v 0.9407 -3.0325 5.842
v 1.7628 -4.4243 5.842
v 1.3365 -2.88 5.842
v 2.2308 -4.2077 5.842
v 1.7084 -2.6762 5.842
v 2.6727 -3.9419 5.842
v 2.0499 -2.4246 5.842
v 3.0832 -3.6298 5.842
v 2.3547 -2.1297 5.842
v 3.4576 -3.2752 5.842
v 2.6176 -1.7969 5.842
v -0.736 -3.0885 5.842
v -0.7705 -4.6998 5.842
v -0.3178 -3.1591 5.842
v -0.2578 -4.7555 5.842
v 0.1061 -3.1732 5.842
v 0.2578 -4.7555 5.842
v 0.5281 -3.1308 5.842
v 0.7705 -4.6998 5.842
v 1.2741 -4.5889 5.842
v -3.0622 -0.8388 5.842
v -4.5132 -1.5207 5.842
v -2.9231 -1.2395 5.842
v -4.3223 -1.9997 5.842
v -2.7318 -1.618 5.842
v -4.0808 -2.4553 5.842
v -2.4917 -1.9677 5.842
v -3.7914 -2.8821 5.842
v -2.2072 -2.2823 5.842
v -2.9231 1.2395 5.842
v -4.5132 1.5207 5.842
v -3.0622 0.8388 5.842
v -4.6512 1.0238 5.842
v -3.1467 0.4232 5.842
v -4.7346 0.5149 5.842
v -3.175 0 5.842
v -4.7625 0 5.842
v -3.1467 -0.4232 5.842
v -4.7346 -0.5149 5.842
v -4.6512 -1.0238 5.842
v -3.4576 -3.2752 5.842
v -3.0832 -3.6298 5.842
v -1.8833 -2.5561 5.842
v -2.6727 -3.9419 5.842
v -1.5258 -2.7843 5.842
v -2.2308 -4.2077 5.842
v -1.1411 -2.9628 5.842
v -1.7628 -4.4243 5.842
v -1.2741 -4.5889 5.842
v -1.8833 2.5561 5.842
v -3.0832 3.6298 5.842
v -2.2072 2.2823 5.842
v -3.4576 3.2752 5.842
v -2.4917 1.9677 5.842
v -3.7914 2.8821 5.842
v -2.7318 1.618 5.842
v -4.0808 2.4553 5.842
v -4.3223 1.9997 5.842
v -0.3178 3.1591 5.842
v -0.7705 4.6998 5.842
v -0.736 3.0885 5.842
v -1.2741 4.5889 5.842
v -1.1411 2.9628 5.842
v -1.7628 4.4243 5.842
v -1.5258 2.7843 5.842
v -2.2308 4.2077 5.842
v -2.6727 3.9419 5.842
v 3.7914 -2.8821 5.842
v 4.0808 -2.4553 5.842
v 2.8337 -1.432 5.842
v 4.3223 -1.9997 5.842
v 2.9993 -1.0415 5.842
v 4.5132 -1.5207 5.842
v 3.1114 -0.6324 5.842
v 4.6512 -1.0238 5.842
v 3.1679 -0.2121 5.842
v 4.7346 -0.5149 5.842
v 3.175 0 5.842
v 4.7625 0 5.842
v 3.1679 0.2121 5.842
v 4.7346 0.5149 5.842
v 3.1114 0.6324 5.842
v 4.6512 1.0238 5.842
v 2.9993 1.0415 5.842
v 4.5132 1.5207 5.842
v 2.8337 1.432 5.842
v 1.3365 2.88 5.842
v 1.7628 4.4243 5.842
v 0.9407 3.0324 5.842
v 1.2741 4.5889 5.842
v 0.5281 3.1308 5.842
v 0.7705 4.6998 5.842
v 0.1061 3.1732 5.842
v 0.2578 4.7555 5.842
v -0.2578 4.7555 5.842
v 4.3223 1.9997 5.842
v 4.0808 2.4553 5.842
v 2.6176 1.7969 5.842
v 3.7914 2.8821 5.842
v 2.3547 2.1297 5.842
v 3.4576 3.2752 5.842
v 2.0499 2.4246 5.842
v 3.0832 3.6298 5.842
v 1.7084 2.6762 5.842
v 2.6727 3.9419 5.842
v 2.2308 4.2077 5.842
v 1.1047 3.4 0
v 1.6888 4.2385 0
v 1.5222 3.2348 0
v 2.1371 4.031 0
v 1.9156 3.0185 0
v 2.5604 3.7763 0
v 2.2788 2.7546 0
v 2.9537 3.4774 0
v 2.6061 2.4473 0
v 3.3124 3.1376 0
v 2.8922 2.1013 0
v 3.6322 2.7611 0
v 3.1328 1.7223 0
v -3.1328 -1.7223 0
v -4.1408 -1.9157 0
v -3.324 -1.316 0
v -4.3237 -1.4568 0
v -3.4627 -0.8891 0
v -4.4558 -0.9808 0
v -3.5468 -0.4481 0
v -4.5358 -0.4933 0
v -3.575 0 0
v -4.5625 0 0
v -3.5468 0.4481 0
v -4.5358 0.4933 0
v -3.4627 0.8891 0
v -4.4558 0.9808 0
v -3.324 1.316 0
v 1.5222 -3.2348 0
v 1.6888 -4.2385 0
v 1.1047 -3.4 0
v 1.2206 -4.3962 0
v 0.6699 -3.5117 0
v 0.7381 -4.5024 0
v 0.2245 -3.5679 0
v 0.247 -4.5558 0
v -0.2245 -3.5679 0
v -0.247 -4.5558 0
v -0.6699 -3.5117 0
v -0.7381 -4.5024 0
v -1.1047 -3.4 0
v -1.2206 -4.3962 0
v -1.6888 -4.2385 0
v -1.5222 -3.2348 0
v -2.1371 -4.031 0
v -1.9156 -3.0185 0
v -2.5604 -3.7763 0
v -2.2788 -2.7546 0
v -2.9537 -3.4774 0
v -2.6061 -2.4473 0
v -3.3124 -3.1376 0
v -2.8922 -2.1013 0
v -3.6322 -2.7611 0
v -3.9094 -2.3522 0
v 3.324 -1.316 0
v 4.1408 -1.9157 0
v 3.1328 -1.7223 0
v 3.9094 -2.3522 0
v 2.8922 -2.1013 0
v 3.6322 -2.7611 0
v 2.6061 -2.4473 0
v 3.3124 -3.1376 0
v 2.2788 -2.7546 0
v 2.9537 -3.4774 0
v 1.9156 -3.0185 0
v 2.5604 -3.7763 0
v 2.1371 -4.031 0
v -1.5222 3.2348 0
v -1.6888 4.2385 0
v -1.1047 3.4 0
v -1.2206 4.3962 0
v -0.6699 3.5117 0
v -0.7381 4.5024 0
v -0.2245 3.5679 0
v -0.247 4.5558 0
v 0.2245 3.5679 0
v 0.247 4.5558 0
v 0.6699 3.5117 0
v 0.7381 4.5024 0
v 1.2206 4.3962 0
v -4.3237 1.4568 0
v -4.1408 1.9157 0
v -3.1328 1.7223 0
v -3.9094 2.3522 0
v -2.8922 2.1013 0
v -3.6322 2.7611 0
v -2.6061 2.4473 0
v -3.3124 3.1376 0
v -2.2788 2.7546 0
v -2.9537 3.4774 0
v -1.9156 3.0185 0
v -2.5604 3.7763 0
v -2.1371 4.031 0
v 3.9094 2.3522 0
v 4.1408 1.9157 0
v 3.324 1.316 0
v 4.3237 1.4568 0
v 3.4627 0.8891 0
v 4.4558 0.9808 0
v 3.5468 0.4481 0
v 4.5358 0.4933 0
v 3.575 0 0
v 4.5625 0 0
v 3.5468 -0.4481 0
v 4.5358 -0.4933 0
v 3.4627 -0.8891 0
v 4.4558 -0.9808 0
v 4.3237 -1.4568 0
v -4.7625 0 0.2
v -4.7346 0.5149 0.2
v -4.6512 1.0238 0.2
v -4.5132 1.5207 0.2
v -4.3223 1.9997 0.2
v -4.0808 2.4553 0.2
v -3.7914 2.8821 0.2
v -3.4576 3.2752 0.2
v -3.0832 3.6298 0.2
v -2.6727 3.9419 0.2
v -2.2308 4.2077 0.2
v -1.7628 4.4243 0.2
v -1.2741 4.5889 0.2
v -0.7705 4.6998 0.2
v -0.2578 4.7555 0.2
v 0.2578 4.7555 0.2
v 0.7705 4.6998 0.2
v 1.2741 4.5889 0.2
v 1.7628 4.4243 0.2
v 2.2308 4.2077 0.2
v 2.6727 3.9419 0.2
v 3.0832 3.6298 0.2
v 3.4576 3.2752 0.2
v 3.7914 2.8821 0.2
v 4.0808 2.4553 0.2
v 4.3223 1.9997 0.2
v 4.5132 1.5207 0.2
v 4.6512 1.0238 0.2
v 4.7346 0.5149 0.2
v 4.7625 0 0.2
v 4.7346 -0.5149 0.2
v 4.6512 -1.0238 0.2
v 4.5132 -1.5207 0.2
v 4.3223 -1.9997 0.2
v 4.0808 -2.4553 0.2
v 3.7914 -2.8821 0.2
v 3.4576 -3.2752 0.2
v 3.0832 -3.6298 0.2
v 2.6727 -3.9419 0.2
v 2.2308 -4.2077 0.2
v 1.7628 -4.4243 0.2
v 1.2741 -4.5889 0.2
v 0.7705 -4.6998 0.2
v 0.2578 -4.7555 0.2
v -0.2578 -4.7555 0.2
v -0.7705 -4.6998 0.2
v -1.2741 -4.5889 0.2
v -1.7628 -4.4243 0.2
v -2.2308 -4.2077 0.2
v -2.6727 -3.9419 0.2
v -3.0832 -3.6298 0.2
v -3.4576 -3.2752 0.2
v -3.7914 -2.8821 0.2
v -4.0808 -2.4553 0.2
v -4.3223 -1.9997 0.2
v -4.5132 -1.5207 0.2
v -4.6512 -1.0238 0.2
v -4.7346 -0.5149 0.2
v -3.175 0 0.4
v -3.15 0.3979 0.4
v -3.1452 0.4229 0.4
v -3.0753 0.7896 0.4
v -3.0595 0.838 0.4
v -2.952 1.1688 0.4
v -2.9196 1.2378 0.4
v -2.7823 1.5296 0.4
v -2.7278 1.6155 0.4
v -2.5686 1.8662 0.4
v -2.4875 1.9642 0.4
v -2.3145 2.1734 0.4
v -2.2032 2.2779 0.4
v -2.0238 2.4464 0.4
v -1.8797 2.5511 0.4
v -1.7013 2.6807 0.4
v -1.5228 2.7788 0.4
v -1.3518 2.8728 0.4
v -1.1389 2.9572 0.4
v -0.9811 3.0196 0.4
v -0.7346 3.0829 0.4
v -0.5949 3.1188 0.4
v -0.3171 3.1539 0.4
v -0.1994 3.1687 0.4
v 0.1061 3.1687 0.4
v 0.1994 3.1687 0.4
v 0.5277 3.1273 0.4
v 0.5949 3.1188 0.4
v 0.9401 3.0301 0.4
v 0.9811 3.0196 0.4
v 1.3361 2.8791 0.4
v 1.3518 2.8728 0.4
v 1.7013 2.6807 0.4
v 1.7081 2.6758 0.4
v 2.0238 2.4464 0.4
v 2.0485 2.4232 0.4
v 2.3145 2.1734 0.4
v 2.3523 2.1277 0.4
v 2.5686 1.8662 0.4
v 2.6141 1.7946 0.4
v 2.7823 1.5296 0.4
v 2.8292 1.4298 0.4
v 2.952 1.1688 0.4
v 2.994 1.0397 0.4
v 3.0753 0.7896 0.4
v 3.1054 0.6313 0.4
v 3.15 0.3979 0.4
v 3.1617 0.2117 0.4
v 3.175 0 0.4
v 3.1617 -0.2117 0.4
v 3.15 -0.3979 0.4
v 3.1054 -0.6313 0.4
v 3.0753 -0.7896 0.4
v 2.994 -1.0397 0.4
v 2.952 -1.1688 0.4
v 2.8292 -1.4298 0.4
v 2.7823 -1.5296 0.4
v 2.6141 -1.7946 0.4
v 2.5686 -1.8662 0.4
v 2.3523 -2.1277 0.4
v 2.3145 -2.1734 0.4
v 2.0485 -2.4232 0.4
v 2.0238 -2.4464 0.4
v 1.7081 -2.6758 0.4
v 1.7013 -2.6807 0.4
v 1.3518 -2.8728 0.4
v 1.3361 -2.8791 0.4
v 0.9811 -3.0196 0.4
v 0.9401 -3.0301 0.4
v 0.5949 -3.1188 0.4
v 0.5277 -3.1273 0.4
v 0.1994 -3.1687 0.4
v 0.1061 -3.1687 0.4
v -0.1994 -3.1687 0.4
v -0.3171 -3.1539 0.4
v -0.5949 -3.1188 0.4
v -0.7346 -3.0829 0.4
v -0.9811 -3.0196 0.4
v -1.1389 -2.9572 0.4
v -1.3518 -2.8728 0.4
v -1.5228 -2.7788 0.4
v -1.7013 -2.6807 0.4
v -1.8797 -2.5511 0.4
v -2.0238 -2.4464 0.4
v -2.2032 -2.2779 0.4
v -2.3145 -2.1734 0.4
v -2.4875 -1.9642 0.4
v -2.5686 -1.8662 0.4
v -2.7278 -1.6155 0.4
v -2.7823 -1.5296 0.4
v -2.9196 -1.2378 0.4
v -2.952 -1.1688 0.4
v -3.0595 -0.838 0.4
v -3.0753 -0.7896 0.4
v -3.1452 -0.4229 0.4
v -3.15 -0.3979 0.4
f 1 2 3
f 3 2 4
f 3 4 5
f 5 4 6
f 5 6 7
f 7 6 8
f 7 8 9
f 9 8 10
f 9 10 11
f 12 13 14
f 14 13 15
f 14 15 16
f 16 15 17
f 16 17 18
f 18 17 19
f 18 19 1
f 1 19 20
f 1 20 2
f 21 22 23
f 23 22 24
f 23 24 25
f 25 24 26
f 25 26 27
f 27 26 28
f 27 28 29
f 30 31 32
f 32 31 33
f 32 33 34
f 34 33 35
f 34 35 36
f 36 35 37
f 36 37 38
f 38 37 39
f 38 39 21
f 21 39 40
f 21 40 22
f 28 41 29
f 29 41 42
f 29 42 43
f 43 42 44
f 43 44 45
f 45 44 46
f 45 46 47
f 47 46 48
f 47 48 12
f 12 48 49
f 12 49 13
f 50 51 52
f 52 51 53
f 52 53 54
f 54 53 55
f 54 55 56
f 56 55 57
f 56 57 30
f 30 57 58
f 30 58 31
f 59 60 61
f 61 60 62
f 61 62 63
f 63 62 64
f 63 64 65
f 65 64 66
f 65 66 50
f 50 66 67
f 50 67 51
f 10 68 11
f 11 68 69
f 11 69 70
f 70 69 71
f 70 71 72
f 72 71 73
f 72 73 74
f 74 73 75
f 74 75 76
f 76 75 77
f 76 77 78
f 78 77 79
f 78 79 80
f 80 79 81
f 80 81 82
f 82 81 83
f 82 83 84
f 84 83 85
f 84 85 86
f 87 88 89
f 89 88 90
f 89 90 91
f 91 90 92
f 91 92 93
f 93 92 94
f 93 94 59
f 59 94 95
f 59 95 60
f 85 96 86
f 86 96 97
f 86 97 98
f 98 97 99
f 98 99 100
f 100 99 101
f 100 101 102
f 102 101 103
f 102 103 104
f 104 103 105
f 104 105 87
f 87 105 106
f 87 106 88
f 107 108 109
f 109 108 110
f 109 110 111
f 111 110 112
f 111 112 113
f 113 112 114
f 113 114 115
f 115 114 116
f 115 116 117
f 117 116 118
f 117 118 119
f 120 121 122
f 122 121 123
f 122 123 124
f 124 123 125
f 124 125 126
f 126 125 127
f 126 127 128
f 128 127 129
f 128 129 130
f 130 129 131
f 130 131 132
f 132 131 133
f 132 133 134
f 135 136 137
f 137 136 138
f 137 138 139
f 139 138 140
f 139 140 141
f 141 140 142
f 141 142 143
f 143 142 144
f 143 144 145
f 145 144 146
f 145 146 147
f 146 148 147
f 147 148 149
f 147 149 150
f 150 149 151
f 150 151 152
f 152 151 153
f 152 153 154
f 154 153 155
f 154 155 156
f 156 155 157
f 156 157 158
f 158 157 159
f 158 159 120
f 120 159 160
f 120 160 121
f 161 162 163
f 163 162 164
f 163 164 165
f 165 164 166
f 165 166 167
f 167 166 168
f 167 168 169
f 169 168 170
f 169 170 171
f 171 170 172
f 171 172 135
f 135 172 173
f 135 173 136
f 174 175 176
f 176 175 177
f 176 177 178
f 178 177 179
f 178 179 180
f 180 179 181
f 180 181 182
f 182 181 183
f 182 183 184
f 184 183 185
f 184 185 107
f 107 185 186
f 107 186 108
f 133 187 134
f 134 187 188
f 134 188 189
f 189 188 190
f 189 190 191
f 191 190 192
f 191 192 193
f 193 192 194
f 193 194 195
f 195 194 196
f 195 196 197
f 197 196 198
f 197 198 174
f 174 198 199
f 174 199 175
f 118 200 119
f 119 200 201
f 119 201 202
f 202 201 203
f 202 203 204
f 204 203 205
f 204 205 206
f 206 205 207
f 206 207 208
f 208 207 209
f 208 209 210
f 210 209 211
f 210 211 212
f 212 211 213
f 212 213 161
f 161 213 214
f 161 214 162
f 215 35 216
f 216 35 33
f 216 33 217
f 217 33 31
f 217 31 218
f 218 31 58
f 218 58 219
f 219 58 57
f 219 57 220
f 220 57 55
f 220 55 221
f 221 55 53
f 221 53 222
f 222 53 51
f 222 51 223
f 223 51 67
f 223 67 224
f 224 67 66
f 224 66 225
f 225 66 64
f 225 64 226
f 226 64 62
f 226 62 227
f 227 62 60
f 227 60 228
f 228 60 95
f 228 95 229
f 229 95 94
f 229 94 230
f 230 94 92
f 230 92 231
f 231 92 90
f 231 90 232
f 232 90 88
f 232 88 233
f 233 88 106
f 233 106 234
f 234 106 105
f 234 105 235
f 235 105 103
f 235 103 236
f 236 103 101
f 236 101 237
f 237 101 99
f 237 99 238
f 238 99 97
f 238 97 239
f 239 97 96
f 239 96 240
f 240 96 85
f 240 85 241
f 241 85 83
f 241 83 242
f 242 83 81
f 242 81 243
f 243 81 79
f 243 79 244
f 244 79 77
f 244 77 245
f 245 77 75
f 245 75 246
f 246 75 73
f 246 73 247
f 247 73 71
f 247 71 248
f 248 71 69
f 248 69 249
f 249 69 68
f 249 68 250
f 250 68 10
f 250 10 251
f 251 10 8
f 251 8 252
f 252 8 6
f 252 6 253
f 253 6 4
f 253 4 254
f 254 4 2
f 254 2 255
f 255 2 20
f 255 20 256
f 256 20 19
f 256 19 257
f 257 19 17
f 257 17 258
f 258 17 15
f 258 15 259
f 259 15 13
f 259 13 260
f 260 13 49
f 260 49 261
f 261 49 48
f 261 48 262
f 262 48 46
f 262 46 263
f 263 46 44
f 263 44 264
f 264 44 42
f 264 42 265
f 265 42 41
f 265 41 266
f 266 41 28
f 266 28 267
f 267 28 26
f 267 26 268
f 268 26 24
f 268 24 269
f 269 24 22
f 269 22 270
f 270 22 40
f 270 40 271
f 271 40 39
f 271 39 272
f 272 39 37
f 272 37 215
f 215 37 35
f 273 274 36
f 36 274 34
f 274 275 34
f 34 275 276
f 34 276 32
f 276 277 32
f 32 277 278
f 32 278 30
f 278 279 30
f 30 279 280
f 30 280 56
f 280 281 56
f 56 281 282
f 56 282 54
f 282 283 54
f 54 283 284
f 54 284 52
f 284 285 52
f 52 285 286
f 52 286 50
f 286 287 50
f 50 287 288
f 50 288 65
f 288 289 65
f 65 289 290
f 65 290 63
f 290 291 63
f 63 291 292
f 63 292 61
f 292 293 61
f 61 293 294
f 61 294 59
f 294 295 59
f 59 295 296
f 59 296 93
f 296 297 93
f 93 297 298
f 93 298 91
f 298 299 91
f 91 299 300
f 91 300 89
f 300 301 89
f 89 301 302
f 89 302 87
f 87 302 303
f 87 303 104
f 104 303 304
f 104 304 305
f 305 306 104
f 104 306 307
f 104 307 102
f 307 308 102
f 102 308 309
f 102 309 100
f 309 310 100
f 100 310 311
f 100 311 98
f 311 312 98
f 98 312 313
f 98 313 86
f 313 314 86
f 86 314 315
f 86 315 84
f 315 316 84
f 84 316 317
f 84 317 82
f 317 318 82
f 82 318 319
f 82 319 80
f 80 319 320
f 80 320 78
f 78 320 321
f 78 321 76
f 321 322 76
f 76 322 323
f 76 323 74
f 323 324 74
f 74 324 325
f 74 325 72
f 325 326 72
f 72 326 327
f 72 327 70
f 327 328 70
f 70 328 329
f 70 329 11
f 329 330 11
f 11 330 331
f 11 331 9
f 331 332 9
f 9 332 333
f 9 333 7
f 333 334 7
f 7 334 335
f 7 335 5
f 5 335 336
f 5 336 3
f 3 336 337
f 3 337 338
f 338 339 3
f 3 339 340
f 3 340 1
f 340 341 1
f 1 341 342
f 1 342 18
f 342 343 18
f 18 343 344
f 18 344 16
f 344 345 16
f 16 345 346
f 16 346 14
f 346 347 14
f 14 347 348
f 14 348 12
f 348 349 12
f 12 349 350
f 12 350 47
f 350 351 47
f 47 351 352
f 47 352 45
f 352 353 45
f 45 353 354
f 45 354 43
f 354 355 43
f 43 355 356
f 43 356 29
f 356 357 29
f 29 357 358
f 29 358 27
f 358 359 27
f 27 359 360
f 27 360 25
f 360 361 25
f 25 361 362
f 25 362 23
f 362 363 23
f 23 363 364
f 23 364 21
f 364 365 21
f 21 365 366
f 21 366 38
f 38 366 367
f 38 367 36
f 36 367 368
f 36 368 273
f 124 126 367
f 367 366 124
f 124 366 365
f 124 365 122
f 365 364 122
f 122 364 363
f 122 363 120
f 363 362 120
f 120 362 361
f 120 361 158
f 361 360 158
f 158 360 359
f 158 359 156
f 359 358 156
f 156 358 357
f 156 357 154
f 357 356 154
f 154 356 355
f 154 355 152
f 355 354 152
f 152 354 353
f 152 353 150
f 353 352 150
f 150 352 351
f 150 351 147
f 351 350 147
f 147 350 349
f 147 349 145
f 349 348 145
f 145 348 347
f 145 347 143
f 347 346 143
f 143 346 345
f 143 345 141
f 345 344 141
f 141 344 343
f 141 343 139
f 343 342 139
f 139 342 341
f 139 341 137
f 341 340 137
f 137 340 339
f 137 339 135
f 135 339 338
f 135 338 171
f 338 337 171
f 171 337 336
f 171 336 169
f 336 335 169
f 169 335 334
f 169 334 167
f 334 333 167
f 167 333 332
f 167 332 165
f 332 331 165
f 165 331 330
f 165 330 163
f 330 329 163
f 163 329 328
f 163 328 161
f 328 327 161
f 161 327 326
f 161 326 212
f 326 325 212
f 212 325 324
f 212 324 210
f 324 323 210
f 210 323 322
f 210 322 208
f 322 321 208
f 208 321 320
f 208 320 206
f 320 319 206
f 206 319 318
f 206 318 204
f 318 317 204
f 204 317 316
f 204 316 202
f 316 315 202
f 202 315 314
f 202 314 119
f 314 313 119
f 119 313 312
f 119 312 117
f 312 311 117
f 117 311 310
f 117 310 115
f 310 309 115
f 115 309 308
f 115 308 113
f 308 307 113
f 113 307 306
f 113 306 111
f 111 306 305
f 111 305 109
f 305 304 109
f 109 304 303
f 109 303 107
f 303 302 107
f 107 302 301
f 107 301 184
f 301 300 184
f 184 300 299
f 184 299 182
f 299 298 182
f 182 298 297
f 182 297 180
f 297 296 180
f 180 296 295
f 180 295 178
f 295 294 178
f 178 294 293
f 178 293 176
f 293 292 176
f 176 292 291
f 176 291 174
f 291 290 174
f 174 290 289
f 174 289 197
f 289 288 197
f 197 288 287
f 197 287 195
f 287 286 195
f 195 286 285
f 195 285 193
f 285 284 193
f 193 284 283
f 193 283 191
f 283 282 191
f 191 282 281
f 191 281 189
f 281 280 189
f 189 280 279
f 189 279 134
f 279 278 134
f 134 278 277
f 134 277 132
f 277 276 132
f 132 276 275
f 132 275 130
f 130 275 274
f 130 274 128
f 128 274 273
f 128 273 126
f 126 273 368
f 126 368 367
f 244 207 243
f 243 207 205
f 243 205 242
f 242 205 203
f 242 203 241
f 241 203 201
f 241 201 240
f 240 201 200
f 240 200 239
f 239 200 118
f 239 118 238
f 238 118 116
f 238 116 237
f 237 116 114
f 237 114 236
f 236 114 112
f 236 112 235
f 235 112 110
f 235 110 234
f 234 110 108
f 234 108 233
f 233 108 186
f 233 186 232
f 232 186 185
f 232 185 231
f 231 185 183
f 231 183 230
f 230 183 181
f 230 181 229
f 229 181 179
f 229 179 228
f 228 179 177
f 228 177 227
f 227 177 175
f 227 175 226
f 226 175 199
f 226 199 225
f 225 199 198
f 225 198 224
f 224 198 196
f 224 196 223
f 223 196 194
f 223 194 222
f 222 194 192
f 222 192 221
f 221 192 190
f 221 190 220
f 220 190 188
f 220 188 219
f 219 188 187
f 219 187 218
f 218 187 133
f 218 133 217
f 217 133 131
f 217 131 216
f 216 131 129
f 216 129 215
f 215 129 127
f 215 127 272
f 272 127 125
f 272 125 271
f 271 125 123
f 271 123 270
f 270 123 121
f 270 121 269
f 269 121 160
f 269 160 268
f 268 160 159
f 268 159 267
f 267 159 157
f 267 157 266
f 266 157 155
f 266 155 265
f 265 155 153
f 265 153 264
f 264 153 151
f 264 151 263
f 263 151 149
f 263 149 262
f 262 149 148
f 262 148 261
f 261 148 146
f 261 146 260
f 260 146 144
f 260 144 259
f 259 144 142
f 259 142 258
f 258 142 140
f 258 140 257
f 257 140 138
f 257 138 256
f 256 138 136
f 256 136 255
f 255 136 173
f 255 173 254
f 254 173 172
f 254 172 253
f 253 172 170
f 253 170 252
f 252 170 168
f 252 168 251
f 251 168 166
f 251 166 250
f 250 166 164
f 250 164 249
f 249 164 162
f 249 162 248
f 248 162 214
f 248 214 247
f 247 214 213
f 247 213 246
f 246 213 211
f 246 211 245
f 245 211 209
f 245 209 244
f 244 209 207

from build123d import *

# Parameters (mm, degrees)
SKETCH1_R           = 4.7625
SKETCH1_R_2         = 3.175
BOSS_EXTRUDE1_DEPTH = 5.842
CHAMFER1_SIZE       = 0.4
CHAMFER2_SIZE       = 0.2


with BuildPart() as part:
    # Sketch1 → Boss-Extrude1 (new body)
    with BuildSketch(Plane.XY):
        Circle(SKETCH1_R)
        Circle(SKETCH1_R_2, mode=Mode.SUBTRACT)
    extrude(amount=BOSS_EXTRUDE1_DEPTH)

    # Chamfer1
    chamfer1_edges = [part.edges().sort_by_distance(p)[0] for p in [
        (-3.175, 0, 0),
    ]]
    chamfer(chamfer1_edges, length=CHAMFER1_SIZE)

    # Chamfer2
    chamfer2_edges = [part.edges().sort_by_distance(p)[0] for p in [
        (-4.7625, 0, 0),
    ]]
    chamfer(chamfer2_edges, length=CHAMFER2_SIZE)


solid = part.part
